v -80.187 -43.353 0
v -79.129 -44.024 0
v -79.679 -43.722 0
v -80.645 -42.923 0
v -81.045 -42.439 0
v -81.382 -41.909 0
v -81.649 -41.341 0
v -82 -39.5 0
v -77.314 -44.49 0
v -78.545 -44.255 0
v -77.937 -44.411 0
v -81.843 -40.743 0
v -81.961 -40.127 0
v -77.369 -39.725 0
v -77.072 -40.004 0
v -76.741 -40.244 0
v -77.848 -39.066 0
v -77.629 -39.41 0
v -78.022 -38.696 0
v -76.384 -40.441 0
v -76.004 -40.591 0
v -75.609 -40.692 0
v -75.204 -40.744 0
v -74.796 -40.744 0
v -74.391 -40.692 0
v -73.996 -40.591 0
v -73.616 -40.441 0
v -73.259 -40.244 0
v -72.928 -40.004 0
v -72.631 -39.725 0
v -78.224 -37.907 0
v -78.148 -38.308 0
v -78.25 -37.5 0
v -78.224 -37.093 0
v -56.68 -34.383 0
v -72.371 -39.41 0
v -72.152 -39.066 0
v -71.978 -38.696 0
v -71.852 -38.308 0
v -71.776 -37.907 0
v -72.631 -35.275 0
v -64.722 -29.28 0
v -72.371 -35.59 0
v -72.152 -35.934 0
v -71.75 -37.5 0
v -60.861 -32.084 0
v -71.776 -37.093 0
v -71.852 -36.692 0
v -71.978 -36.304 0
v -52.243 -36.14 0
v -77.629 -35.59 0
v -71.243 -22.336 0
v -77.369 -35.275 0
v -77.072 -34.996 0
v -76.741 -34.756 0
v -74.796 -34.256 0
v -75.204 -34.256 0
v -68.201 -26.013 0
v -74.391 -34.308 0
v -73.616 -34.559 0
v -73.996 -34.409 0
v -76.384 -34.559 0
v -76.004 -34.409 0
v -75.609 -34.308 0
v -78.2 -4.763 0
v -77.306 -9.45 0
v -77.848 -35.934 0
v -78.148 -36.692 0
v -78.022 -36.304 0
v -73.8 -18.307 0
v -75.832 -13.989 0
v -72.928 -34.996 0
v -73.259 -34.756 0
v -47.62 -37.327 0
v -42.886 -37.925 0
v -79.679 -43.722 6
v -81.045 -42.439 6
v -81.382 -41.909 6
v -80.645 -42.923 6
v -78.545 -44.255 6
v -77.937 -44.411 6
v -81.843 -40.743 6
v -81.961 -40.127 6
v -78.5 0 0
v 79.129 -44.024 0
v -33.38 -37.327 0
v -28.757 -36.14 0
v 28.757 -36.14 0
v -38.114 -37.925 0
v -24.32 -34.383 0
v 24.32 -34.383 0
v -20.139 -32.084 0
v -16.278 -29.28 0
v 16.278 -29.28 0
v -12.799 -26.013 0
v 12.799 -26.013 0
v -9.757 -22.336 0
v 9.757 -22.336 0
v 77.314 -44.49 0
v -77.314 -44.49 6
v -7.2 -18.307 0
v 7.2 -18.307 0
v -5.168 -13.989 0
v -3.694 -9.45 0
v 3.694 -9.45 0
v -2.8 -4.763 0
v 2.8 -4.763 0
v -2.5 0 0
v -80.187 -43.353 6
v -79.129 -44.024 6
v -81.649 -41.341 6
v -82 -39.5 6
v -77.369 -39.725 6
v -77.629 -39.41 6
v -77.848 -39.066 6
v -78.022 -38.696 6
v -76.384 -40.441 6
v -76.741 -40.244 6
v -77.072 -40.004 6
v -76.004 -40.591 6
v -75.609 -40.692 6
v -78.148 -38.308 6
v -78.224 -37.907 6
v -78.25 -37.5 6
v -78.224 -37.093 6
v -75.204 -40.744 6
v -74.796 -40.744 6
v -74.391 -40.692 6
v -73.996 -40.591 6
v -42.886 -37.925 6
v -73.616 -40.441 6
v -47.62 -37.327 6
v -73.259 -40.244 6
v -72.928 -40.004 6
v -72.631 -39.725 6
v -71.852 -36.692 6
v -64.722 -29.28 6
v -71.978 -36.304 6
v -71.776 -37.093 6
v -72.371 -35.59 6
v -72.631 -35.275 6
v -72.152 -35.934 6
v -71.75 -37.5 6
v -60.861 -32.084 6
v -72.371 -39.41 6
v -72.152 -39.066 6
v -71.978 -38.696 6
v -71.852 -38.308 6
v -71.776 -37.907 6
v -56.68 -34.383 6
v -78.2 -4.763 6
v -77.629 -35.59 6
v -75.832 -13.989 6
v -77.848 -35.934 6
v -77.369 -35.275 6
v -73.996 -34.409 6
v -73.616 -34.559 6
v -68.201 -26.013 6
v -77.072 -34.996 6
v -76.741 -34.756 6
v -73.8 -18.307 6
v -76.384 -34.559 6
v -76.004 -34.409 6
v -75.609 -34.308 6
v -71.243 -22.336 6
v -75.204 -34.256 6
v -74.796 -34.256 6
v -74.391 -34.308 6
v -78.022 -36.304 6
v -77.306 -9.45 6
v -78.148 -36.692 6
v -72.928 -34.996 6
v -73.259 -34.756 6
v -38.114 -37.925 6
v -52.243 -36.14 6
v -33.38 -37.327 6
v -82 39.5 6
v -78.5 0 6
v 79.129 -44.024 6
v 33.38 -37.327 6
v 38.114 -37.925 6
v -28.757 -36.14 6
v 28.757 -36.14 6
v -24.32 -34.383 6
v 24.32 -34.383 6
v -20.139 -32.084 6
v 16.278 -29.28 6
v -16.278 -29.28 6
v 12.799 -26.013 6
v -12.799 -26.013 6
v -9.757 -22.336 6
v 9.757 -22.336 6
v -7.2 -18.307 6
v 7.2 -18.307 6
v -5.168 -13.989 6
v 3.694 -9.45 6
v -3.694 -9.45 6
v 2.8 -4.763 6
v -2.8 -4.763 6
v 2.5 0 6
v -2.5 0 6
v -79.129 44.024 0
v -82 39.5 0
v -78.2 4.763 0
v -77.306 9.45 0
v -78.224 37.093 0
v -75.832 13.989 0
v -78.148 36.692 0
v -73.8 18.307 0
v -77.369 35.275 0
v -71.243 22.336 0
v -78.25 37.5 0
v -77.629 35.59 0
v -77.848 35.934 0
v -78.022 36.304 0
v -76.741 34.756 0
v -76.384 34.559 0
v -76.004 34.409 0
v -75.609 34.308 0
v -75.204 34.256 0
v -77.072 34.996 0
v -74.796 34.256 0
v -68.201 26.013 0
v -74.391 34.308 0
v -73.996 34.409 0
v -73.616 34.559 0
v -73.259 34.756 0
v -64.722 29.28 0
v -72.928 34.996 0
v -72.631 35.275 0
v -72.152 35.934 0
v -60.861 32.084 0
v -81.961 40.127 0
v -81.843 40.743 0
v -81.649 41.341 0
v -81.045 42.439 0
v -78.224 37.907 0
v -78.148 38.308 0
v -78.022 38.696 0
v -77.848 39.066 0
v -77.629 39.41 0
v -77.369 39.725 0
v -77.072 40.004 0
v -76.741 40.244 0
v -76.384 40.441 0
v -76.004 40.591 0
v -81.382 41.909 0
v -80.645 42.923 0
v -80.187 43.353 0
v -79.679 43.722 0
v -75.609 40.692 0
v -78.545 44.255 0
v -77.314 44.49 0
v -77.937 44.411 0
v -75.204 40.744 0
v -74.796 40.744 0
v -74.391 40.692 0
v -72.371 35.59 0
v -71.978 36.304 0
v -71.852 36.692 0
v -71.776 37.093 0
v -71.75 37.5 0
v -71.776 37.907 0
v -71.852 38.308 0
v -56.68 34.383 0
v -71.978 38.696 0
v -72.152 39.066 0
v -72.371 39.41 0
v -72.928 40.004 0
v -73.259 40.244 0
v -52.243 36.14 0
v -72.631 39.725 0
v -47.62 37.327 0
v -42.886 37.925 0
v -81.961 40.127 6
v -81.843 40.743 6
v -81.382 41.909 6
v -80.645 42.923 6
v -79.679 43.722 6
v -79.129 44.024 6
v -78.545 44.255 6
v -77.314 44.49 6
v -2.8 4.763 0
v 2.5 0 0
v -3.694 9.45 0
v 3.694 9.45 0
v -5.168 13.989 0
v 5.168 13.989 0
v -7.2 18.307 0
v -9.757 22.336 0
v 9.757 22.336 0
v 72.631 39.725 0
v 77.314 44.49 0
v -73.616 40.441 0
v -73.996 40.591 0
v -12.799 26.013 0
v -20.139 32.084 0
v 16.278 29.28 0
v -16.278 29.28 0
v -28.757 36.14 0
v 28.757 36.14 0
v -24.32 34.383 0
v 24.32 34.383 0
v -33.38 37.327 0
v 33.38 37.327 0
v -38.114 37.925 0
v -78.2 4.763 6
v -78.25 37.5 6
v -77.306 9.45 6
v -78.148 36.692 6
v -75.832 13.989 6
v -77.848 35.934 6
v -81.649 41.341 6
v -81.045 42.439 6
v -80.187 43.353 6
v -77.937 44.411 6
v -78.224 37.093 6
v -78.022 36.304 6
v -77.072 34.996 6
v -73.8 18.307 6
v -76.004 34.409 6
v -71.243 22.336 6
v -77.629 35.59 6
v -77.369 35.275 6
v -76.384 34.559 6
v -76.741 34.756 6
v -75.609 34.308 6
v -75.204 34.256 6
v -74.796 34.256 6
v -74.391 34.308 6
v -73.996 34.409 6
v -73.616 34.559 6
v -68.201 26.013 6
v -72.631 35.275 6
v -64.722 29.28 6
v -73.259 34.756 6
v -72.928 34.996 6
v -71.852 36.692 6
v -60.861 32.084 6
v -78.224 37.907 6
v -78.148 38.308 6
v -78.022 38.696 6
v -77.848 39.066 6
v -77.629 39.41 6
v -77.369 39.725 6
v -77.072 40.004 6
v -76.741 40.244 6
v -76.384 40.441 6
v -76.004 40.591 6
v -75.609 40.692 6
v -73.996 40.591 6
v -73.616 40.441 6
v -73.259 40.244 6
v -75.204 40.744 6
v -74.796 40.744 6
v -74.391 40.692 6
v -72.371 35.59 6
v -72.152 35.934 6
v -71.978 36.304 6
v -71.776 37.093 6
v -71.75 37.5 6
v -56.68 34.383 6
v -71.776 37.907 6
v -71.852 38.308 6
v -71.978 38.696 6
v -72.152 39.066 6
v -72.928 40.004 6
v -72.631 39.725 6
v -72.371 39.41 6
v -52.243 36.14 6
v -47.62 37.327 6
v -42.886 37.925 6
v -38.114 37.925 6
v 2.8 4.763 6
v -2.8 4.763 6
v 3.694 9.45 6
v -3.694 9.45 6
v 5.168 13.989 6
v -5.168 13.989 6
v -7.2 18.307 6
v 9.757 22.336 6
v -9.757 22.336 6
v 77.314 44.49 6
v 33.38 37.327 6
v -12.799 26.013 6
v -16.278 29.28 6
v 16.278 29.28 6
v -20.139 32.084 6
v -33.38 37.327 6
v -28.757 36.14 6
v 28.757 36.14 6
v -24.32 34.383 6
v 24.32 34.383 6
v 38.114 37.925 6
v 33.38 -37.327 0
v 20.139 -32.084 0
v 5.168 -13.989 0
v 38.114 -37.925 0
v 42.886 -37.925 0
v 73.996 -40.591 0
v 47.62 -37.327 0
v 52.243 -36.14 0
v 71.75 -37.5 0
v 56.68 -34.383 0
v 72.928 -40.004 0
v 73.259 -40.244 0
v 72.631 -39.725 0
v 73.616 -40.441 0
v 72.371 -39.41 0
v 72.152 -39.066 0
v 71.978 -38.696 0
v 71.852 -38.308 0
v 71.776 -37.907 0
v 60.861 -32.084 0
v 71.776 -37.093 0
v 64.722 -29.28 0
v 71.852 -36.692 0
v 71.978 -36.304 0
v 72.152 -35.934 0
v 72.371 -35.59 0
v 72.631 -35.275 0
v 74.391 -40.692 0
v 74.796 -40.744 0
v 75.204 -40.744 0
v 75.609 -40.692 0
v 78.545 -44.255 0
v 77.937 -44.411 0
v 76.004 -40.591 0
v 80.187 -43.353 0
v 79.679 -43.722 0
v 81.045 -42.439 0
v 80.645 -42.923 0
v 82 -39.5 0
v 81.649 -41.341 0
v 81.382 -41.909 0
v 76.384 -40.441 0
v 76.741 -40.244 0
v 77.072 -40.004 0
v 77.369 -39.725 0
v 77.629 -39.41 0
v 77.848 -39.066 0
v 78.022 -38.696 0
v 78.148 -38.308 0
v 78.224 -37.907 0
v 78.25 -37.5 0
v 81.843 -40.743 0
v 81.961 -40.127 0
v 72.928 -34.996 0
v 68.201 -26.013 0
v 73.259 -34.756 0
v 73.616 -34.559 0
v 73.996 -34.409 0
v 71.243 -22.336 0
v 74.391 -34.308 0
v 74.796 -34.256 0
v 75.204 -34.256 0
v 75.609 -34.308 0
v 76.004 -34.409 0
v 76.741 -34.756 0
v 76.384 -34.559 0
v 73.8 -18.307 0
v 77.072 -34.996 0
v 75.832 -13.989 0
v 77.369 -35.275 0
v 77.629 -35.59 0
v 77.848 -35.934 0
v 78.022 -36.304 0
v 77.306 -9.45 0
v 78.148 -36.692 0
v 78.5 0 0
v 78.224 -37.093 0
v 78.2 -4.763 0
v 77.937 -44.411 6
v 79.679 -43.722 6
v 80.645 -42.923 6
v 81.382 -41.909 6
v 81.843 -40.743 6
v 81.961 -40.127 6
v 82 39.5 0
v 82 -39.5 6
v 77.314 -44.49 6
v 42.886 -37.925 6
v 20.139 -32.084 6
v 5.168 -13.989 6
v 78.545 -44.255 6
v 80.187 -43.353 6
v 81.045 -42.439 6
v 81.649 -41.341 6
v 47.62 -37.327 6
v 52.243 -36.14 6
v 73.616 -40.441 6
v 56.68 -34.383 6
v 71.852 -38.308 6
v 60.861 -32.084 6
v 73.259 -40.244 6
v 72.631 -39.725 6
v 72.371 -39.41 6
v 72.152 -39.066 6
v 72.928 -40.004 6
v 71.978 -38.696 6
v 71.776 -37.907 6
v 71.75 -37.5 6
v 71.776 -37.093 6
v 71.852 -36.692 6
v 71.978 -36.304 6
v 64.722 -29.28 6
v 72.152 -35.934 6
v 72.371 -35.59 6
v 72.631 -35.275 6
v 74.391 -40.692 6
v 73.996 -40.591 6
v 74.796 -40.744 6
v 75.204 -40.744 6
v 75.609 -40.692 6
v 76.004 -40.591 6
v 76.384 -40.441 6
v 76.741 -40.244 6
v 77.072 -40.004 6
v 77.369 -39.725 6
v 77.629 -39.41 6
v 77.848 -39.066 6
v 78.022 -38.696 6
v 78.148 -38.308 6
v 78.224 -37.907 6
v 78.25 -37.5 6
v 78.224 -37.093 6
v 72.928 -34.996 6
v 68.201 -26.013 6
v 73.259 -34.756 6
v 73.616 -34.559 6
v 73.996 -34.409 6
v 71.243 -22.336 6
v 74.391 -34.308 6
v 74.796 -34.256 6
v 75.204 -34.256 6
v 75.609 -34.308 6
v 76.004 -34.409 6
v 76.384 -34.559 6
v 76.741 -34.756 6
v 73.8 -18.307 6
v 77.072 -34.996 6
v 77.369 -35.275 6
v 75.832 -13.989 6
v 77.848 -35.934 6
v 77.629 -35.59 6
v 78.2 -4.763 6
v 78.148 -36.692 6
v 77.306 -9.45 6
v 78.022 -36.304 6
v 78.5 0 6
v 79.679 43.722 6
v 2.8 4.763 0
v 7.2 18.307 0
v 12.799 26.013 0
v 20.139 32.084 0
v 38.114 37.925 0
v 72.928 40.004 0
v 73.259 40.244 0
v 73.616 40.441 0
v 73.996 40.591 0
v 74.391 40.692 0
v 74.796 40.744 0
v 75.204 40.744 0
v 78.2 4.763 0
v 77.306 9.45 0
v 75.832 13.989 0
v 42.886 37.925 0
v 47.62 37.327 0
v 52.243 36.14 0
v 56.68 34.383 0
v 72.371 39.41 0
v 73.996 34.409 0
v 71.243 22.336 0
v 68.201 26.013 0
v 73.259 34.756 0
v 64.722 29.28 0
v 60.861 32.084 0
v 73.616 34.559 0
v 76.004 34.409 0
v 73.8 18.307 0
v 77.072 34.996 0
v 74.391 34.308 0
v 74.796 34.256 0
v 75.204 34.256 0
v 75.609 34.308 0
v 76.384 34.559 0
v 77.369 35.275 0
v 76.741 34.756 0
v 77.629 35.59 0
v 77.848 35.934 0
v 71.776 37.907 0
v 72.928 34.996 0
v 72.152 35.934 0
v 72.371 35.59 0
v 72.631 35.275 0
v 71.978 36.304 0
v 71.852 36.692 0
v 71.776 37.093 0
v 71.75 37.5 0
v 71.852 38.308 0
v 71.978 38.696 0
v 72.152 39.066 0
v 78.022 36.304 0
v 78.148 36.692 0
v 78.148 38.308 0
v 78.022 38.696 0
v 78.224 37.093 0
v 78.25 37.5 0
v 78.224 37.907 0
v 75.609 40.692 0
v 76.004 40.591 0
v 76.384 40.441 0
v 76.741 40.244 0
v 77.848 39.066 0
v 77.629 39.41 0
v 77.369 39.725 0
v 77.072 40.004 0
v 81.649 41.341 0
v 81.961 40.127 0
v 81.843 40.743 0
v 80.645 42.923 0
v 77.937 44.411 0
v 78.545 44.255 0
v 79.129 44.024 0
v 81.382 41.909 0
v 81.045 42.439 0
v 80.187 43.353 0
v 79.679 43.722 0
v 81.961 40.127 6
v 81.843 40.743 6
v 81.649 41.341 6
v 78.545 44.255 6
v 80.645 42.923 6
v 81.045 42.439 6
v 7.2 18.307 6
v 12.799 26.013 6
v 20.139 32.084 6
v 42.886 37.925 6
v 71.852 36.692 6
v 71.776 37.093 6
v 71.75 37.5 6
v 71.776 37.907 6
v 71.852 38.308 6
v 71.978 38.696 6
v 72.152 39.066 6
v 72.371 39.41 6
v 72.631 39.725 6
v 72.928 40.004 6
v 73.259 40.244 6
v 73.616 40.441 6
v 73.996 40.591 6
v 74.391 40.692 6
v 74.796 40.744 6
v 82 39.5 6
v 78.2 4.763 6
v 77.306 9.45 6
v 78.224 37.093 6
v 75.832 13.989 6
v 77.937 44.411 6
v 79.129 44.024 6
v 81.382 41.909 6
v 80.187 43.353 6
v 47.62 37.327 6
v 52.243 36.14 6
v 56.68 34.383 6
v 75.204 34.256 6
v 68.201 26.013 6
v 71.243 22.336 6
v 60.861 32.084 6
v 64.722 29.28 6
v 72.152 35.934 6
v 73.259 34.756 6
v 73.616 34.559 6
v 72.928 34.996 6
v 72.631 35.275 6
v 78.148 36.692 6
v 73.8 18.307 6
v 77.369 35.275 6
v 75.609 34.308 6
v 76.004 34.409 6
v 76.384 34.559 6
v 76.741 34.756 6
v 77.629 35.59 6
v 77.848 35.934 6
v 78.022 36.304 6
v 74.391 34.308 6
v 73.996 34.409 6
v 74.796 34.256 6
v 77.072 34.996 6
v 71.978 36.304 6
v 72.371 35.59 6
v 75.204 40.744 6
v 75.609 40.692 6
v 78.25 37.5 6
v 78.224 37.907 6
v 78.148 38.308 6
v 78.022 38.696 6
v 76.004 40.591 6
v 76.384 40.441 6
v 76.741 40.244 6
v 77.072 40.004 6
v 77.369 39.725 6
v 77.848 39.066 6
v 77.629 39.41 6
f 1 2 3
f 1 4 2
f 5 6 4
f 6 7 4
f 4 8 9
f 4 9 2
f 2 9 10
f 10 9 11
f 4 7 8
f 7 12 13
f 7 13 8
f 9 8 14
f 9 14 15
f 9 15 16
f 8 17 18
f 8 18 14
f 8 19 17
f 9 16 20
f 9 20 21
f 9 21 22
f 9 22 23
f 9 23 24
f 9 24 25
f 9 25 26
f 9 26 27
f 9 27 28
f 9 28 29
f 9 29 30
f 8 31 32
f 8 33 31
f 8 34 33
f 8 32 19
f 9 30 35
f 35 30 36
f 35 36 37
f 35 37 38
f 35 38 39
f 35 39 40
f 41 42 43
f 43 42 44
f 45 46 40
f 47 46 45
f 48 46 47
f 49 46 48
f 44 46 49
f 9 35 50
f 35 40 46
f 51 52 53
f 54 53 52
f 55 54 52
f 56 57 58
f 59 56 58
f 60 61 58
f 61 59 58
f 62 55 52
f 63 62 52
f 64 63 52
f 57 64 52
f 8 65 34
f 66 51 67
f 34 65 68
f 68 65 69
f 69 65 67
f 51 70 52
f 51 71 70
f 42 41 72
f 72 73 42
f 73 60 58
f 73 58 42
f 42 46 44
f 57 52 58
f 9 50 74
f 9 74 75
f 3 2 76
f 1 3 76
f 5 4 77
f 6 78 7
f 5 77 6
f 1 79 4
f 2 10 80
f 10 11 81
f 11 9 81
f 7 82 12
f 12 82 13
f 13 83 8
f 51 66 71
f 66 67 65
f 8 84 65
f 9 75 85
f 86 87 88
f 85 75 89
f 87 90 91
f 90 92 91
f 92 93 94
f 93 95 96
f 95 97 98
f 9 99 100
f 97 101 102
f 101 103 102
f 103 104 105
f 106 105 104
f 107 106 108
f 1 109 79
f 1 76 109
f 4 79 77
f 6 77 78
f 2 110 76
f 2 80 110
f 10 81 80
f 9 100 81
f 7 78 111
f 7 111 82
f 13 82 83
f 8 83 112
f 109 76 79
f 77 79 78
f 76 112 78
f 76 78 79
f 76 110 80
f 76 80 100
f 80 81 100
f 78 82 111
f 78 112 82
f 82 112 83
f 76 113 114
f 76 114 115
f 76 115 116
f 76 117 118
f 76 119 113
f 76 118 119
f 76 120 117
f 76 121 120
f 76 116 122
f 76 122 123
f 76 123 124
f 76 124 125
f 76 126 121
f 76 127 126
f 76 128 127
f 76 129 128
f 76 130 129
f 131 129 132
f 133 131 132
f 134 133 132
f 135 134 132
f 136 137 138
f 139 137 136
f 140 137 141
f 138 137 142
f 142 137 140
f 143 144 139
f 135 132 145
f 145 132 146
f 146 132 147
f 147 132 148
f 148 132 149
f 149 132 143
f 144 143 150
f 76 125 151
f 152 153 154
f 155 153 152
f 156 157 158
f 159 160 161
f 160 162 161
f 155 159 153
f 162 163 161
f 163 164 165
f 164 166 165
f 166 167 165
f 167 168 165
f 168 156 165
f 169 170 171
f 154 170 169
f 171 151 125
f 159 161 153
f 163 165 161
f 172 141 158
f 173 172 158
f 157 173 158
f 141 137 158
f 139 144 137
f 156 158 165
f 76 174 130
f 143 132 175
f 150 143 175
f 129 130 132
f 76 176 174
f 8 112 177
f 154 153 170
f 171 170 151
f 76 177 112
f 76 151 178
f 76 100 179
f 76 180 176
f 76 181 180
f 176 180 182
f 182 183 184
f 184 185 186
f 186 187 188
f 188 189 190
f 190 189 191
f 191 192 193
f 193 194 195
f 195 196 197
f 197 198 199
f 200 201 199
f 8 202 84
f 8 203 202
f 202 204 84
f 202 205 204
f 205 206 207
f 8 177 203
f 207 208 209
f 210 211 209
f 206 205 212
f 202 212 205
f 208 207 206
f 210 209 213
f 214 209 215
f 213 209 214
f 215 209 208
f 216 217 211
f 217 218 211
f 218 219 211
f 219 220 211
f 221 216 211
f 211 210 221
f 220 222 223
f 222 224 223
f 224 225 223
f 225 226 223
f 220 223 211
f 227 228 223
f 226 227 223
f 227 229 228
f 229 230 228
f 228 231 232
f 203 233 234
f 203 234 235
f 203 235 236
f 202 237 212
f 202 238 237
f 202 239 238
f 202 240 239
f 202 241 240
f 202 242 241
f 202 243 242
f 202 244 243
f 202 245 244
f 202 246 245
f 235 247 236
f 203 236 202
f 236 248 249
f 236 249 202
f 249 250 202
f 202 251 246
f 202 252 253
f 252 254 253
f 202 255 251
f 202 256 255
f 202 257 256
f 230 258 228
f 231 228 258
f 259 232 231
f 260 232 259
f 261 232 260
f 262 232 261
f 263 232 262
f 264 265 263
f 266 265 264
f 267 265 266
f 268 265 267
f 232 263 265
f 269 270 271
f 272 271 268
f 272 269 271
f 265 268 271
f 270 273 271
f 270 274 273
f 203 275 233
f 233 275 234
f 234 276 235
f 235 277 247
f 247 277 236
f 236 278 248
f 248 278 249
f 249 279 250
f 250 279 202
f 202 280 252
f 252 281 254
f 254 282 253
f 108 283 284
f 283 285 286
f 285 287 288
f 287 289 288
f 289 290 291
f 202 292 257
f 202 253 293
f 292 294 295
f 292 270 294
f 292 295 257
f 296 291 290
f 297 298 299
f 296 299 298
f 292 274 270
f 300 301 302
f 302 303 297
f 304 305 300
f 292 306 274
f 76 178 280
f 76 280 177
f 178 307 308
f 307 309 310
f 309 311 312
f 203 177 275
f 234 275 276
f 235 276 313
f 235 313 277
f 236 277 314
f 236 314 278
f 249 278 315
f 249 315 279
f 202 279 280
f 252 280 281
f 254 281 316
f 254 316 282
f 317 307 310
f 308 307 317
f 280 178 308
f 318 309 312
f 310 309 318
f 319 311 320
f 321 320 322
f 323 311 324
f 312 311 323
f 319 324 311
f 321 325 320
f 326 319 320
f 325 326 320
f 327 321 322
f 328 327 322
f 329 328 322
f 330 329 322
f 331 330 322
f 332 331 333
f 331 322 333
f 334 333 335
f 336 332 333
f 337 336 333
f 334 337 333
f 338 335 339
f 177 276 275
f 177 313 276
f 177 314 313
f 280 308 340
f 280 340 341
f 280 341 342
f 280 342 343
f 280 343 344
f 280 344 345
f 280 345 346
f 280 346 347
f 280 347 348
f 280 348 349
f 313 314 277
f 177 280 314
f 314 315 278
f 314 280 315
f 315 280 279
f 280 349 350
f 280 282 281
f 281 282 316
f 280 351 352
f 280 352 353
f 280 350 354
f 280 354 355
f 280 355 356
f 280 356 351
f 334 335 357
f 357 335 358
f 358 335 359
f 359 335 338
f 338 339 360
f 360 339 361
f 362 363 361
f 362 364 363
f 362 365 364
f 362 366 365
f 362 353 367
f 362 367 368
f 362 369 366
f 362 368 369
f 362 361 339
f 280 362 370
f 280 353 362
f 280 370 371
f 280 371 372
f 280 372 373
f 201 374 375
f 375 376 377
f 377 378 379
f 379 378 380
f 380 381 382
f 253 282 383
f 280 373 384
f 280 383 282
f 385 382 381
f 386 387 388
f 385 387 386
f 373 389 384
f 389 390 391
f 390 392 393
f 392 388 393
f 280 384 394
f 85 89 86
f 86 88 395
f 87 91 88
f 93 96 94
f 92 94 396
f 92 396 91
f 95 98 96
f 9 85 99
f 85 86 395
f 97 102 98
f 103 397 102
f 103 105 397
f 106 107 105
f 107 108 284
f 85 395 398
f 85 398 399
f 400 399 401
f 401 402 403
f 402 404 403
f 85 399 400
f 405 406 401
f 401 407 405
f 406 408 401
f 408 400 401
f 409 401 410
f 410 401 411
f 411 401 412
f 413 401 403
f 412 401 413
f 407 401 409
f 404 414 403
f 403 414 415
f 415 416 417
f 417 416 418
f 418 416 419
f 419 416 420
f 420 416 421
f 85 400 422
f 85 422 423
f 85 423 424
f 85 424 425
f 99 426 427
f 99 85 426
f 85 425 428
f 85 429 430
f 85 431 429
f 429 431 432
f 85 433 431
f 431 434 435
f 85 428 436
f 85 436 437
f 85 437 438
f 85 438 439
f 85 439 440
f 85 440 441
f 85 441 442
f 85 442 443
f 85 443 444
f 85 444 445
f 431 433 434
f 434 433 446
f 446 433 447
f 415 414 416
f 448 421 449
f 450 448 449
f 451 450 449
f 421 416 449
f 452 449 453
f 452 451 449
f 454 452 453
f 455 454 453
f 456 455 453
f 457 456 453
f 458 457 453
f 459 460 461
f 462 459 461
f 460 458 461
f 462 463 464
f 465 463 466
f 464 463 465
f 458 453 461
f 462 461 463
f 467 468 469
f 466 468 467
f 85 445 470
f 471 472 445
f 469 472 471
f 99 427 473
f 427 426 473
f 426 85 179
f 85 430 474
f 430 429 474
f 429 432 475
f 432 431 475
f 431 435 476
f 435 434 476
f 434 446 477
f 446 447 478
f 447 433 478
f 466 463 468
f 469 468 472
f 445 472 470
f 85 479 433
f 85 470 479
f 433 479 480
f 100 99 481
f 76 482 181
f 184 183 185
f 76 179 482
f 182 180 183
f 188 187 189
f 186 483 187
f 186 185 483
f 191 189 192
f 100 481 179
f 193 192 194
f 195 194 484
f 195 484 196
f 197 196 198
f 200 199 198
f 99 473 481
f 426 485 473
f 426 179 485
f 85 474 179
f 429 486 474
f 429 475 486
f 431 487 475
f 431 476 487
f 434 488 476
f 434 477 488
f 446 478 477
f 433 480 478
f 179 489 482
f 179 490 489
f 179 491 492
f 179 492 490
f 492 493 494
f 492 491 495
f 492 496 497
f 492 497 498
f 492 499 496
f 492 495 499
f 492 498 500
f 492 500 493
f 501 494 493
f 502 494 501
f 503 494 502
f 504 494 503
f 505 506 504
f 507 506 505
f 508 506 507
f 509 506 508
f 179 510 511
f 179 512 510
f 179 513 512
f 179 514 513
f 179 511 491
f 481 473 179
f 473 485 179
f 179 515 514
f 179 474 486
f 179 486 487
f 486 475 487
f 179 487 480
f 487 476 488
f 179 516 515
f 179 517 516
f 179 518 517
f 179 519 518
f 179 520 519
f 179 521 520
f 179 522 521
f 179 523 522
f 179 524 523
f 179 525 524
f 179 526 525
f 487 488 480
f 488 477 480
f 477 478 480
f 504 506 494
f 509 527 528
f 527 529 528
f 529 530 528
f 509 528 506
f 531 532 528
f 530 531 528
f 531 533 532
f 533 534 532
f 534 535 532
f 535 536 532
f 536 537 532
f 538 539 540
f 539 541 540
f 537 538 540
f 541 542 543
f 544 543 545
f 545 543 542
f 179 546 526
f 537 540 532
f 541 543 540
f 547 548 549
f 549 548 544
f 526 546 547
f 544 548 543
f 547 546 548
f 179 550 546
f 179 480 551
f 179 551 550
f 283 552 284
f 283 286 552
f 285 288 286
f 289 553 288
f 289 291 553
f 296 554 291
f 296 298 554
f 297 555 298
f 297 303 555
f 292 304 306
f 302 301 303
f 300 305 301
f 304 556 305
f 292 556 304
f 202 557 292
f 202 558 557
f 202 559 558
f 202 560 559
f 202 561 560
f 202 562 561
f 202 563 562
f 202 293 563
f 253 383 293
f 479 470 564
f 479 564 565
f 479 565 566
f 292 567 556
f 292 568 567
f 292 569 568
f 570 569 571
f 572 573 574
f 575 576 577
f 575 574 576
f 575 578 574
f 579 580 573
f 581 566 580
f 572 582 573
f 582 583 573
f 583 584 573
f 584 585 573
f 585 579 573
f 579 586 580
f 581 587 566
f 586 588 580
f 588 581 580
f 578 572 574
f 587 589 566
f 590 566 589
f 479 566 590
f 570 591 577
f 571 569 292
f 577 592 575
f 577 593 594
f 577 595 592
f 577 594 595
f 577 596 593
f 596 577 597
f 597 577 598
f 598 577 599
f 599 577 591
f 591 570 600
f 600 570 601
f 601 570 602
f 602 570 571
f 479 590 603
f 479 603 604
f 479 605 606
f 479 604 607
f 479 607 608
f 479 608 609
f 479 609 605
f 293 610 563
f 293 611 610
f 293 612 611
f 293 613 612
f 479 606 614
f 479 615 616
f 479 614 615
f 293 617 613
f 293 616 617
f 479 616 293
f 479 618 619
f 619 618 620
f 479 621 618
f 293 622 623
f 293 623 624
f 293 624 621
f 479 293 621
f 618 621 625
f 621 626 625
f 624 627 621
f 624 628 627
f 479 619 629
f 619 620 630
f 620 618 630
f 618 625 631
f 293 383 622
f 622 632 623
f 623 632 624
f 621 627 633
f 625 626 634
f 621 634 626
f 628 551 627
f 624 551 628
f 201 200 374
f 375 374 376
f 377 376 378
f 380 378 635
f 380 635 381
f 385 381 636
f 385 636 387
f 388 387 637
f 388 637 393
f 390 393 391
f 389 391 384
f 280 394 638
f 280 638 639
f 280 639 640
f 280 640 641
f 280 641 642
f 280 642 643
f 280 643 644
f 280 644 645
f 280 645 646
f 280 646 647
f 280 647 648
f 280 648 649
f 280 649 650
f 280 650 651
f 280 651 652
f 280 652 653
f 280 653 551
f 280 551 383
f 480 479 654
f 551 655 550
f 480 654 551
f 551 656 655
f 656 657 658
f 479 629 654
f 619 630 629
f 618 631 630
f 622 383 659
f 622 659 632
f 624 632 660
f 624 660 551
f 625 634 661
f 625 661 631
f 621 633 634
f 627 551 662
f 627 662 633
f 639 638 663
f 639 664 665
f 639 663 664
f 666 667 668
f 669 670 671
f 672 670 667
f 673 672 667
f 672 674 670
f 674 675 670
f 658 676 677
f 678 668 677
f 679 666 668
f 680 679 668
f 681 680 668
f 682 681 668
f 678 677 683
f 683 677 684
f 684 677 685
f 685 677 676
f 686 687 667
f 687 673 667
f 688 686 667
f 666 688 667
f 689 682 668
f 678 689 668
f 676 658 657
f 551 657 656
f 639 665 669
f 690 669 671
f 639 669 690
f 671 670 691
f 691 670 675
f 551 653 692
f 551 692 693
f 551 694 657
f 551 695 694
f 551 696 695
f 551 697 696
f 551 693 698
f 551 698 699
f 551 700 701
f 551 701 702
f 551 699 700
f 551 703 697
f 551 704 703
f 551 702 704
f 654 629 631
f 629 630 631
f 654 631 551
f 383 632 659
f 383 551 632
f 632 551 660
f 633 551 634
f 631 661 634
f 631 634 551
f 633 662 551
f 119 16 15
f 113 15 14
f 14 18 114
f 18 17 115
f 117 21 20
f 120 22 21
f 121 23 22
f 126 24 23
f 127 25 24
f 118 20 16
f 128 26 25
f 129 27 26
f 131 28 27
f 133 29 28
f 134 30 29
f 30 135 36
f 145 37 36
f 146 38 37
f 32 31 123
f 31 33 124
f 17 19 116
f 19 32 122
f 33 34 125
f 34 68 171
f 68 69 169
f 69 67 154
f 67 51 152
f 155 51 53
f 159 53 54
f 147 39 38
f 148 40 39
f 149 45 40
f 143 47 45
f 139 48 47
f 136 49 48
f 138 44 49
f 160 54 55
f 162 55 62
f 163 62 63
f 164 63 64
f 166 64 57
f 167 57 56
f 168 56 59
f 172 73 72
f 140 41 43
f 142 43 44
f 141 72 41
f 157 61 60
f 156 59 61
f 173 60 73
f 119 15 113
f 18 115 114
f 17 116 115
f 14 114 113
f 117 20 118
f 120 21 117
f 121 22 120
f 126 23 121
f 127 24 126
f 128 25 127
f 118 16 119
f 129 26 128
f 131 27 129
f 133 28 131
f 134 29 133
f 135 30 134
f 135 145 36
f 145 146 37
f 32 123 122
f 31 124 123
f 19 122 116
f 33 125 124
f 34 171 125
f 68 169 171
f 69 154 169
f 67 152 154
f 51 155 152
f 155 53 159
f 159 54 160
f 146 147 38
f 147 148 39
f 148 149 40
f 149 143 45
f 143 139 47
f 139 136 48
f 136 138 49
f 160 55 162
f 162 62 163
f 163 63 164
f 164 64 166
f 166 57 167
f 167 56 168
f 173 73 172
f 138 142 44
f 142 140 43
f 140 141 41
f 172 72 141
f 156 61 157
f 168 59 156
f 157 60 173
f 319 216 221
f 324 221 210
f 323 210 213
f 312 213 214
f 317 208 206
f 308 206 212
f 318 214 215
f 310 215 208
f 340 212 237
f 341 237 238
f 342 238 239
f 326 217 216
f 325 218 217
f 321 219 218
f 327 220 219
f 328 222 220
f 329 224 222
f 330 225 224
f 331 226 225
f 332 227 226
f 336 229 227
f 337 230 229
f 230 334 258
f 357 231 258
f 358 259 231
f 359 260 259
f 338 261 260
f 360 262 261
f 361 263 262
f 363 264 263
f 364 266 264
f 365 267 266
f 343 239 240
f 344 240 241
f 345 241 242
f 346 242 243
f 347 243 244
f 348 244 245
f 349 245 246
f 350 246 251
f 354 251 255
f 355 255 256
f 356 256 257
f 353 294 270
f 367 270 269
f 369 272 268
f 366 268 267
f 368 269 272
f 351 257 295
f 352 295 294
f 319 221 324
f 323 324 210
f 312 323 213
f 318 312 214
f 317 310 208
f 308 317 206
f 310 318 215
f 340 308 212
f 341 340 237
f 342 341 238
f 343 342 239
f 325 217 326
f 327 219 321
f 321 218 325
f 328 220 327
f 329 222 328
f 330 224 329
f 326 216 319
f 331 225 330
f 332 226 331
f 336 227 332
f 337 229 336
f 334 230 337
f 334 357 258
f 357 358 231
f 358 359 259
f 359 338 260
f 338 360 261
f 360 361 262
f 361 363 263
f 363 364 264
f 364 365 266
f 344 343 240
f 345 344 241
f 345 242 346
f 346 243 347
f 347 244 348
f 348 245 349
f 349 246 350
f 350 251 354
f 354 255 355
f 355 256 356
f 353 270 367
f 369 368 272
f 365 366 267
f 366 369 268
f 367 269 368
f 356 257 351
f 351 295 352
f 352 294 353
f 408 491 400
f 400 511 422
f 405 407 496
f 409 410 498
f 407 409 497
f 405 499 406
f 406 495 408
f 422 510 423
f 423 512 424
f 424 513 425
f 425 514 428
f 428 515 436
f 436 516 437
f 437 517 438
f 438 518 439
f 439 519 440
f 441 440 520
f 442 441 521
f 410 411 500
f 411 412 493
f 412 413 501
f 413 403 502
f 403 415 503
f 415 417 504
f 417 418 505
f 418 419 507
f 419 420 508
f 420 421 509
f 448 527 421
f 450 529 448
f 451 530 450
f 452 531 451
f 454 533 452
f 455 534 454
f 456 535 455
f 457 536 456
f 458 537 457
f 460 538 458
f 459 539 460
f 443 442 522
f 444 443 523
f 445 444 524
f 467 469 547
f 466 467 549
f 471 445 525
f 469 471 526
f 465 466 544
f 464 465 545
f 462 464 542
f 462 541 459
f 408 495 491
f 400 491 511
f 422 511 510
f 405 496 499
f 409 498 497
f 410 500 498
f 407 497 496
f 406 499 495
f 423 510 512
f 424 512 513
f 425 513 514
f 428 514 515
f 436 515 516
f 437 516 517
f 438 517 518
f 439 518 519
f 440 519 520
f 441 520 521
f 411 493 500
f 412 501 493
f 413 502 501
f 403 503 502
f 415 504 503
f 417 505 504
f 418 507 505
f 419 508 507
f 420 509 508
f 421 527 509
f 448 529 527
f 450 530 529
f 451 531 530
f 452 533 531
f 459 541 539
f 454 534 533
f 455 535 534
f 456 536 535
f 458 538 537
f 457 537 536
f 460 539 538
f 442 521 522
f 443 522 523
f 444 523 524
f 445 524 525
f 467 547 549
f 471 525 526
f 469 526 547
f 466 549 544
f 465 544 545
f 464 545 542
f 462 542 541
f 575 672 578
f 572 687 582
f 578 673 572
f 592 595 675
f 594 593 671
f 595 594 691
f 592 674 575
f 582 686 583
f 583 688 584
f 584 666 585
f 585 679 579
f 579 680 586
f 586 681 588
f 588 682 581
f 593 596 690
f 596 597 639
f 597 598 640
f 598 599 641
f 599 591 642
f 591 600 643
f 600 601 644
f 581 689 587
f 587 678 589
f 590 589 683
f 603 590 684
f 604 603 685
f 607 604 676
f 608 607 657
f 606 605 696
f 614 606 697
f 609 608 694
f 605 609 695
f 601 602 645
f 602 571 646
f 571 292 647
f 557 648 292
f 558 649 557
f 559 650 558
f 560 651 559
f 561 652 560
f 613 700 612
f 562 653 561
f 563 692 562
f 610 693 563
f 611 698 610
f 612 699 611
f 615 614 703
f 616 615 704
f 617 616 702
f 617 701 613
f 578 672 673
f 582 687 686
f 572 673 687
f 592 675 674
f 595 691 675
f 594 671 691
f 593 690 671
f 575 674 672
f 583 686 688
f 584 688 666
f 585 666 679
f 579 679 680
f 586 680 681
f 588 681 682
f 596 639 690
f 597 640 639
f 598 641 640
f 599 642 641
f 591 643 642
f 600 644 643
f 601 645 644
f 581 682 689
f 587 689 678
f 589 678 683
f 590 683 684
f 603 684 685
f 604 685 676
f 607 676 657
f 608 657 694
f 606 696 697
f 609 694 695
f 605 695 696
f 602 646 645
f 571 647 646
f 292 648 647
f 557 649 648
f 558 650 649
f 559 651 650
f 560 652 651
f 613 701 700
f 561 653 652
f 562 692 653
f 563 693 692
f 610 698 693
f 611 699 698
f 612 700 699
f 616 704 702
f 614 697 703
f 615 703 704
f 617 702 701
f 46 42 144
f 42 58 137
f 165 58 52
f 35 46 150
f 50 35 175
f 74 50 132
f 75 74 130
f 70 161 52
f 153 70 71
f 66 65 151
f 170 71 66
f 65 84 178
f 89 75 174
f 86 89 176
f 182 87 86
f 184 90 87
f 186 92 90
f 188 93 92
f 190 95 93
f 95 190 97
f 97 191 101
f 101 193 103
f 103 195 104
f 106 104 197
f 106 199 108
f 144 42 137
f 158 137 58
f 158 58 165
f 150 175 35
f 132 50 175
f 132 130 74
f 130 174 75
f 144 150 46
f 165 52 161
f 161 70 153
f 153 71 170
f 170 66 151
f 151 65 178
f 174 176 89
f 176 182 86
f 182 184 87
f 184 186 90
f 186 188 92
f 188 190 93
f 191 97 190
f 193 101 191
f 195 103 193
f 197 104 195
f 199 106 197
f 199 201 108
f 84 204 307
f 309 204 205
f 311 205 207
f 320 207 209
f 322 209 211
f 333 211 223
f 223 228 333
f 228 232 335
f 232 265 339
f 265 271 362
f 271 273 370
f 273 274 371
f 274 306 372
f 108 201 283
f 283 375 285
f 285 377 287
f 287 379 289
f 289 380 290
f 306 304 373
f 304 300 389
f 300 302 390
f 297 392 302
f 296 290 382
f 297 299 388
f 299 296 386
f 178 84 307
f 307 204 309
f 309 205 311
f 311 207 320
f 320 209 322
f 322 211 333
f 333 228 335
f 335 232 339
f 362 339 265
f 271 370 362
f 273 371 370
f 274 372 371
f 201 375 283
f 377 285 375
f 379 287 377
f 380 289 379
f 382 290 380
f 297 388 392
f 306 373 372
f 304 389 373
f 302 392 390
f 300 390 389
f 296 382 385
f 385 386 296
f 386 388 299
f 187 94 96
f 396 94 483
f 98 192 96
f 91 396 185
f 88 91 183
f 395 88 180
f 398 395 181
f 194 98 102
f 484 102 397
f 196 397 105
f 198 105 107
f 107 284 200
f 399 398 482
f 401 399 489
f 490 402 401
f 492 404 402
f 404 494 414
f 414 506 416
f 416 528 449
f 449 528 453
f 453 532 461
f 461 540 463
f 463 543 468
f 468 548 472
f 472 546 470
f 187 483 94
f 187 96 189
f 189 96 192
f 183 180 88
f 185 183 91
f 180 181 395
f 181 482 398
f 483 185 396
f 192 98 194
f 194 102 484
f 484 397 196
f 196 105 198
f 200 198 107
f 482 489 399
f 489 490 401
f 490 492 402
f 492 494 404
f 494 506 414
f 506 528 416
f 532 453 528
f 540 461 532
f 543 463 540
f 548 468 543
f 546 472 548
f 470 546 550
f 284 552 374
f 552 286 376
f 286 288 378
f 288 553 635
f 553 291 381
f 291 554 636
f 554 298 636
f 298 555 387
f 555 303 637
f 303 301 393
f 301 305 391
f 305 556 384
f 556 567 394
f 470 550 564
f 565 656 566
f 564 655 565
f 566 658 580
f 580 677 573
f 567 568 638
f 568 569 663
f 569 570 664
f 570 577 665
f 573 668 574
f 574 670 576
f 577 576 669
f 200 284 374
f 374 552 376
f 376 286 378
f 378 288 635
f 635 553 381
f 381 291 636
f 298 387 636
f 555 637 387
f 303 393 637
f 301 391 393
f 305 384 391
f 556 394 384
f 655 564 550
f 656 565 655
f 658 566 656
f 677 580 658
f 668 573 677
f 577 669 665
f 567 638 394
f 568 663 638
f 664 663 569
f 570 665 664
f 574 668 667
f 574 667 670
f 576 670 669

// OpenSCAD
$fn = 50;

difference() {
	union() {
		hull() {
			translate(v = [-77.0, 39.5, 0]) {
				cylinder(h = 6, r = 5);
			}
			translate(v = [77.0, 39.5, 0]) {
				cylinder(h = 6, r = 5);
			}
			translate(v = [-77.0, -39.5, 0]) {
				cylinder(h = 6, r = 5);
			}
			translate(v = [77.0, -39.5, 0]) {
				cylinder(h = 6, r = 5);
			}
		}
	}
	union() {
		translate(v = [-75.0, -37.5, -100.0]) {
			cylinder(h = 200, r = 3.25);
		}
		translate(v = [-75.0, 37.5, -100.0]) {
			cylinder(h = 200, r = 3.25);
		}
		translate(v = [75.0, -37.5, -100.0]) {
			cylinder(h = 200, r = 3.25);
		}
		translate(v = [75.0, 37.5, -100.0]) {
			cylinder(h = 200, r = 3.25);
		}
		translate(v = [-75.0, -37.5, -100.0]) {
			cylinder(h = 200, r = 1.8);
		}
		translate(v = [-75.0, 37.5, -100.0]) {
			cylinder(h = 200, r = 1.8);
		}
		translate(v = [75.0, -37.5, -100.0]) {
			cylinder(h = 200, r = 1.8);
		}
		translate(v = [75.0, 37.5, -100.0]) {
			cylinder(h = 200, r = 1.8);
		}
		translate(v = [-40.5, 0, 0.0]) {
			cylinder(h = 6, r = 38.0);
		}
		translate(v = [40.5, 0, 0.0]) {
			cylinder(h = 6, r = 38.0);
		}
	}
}
